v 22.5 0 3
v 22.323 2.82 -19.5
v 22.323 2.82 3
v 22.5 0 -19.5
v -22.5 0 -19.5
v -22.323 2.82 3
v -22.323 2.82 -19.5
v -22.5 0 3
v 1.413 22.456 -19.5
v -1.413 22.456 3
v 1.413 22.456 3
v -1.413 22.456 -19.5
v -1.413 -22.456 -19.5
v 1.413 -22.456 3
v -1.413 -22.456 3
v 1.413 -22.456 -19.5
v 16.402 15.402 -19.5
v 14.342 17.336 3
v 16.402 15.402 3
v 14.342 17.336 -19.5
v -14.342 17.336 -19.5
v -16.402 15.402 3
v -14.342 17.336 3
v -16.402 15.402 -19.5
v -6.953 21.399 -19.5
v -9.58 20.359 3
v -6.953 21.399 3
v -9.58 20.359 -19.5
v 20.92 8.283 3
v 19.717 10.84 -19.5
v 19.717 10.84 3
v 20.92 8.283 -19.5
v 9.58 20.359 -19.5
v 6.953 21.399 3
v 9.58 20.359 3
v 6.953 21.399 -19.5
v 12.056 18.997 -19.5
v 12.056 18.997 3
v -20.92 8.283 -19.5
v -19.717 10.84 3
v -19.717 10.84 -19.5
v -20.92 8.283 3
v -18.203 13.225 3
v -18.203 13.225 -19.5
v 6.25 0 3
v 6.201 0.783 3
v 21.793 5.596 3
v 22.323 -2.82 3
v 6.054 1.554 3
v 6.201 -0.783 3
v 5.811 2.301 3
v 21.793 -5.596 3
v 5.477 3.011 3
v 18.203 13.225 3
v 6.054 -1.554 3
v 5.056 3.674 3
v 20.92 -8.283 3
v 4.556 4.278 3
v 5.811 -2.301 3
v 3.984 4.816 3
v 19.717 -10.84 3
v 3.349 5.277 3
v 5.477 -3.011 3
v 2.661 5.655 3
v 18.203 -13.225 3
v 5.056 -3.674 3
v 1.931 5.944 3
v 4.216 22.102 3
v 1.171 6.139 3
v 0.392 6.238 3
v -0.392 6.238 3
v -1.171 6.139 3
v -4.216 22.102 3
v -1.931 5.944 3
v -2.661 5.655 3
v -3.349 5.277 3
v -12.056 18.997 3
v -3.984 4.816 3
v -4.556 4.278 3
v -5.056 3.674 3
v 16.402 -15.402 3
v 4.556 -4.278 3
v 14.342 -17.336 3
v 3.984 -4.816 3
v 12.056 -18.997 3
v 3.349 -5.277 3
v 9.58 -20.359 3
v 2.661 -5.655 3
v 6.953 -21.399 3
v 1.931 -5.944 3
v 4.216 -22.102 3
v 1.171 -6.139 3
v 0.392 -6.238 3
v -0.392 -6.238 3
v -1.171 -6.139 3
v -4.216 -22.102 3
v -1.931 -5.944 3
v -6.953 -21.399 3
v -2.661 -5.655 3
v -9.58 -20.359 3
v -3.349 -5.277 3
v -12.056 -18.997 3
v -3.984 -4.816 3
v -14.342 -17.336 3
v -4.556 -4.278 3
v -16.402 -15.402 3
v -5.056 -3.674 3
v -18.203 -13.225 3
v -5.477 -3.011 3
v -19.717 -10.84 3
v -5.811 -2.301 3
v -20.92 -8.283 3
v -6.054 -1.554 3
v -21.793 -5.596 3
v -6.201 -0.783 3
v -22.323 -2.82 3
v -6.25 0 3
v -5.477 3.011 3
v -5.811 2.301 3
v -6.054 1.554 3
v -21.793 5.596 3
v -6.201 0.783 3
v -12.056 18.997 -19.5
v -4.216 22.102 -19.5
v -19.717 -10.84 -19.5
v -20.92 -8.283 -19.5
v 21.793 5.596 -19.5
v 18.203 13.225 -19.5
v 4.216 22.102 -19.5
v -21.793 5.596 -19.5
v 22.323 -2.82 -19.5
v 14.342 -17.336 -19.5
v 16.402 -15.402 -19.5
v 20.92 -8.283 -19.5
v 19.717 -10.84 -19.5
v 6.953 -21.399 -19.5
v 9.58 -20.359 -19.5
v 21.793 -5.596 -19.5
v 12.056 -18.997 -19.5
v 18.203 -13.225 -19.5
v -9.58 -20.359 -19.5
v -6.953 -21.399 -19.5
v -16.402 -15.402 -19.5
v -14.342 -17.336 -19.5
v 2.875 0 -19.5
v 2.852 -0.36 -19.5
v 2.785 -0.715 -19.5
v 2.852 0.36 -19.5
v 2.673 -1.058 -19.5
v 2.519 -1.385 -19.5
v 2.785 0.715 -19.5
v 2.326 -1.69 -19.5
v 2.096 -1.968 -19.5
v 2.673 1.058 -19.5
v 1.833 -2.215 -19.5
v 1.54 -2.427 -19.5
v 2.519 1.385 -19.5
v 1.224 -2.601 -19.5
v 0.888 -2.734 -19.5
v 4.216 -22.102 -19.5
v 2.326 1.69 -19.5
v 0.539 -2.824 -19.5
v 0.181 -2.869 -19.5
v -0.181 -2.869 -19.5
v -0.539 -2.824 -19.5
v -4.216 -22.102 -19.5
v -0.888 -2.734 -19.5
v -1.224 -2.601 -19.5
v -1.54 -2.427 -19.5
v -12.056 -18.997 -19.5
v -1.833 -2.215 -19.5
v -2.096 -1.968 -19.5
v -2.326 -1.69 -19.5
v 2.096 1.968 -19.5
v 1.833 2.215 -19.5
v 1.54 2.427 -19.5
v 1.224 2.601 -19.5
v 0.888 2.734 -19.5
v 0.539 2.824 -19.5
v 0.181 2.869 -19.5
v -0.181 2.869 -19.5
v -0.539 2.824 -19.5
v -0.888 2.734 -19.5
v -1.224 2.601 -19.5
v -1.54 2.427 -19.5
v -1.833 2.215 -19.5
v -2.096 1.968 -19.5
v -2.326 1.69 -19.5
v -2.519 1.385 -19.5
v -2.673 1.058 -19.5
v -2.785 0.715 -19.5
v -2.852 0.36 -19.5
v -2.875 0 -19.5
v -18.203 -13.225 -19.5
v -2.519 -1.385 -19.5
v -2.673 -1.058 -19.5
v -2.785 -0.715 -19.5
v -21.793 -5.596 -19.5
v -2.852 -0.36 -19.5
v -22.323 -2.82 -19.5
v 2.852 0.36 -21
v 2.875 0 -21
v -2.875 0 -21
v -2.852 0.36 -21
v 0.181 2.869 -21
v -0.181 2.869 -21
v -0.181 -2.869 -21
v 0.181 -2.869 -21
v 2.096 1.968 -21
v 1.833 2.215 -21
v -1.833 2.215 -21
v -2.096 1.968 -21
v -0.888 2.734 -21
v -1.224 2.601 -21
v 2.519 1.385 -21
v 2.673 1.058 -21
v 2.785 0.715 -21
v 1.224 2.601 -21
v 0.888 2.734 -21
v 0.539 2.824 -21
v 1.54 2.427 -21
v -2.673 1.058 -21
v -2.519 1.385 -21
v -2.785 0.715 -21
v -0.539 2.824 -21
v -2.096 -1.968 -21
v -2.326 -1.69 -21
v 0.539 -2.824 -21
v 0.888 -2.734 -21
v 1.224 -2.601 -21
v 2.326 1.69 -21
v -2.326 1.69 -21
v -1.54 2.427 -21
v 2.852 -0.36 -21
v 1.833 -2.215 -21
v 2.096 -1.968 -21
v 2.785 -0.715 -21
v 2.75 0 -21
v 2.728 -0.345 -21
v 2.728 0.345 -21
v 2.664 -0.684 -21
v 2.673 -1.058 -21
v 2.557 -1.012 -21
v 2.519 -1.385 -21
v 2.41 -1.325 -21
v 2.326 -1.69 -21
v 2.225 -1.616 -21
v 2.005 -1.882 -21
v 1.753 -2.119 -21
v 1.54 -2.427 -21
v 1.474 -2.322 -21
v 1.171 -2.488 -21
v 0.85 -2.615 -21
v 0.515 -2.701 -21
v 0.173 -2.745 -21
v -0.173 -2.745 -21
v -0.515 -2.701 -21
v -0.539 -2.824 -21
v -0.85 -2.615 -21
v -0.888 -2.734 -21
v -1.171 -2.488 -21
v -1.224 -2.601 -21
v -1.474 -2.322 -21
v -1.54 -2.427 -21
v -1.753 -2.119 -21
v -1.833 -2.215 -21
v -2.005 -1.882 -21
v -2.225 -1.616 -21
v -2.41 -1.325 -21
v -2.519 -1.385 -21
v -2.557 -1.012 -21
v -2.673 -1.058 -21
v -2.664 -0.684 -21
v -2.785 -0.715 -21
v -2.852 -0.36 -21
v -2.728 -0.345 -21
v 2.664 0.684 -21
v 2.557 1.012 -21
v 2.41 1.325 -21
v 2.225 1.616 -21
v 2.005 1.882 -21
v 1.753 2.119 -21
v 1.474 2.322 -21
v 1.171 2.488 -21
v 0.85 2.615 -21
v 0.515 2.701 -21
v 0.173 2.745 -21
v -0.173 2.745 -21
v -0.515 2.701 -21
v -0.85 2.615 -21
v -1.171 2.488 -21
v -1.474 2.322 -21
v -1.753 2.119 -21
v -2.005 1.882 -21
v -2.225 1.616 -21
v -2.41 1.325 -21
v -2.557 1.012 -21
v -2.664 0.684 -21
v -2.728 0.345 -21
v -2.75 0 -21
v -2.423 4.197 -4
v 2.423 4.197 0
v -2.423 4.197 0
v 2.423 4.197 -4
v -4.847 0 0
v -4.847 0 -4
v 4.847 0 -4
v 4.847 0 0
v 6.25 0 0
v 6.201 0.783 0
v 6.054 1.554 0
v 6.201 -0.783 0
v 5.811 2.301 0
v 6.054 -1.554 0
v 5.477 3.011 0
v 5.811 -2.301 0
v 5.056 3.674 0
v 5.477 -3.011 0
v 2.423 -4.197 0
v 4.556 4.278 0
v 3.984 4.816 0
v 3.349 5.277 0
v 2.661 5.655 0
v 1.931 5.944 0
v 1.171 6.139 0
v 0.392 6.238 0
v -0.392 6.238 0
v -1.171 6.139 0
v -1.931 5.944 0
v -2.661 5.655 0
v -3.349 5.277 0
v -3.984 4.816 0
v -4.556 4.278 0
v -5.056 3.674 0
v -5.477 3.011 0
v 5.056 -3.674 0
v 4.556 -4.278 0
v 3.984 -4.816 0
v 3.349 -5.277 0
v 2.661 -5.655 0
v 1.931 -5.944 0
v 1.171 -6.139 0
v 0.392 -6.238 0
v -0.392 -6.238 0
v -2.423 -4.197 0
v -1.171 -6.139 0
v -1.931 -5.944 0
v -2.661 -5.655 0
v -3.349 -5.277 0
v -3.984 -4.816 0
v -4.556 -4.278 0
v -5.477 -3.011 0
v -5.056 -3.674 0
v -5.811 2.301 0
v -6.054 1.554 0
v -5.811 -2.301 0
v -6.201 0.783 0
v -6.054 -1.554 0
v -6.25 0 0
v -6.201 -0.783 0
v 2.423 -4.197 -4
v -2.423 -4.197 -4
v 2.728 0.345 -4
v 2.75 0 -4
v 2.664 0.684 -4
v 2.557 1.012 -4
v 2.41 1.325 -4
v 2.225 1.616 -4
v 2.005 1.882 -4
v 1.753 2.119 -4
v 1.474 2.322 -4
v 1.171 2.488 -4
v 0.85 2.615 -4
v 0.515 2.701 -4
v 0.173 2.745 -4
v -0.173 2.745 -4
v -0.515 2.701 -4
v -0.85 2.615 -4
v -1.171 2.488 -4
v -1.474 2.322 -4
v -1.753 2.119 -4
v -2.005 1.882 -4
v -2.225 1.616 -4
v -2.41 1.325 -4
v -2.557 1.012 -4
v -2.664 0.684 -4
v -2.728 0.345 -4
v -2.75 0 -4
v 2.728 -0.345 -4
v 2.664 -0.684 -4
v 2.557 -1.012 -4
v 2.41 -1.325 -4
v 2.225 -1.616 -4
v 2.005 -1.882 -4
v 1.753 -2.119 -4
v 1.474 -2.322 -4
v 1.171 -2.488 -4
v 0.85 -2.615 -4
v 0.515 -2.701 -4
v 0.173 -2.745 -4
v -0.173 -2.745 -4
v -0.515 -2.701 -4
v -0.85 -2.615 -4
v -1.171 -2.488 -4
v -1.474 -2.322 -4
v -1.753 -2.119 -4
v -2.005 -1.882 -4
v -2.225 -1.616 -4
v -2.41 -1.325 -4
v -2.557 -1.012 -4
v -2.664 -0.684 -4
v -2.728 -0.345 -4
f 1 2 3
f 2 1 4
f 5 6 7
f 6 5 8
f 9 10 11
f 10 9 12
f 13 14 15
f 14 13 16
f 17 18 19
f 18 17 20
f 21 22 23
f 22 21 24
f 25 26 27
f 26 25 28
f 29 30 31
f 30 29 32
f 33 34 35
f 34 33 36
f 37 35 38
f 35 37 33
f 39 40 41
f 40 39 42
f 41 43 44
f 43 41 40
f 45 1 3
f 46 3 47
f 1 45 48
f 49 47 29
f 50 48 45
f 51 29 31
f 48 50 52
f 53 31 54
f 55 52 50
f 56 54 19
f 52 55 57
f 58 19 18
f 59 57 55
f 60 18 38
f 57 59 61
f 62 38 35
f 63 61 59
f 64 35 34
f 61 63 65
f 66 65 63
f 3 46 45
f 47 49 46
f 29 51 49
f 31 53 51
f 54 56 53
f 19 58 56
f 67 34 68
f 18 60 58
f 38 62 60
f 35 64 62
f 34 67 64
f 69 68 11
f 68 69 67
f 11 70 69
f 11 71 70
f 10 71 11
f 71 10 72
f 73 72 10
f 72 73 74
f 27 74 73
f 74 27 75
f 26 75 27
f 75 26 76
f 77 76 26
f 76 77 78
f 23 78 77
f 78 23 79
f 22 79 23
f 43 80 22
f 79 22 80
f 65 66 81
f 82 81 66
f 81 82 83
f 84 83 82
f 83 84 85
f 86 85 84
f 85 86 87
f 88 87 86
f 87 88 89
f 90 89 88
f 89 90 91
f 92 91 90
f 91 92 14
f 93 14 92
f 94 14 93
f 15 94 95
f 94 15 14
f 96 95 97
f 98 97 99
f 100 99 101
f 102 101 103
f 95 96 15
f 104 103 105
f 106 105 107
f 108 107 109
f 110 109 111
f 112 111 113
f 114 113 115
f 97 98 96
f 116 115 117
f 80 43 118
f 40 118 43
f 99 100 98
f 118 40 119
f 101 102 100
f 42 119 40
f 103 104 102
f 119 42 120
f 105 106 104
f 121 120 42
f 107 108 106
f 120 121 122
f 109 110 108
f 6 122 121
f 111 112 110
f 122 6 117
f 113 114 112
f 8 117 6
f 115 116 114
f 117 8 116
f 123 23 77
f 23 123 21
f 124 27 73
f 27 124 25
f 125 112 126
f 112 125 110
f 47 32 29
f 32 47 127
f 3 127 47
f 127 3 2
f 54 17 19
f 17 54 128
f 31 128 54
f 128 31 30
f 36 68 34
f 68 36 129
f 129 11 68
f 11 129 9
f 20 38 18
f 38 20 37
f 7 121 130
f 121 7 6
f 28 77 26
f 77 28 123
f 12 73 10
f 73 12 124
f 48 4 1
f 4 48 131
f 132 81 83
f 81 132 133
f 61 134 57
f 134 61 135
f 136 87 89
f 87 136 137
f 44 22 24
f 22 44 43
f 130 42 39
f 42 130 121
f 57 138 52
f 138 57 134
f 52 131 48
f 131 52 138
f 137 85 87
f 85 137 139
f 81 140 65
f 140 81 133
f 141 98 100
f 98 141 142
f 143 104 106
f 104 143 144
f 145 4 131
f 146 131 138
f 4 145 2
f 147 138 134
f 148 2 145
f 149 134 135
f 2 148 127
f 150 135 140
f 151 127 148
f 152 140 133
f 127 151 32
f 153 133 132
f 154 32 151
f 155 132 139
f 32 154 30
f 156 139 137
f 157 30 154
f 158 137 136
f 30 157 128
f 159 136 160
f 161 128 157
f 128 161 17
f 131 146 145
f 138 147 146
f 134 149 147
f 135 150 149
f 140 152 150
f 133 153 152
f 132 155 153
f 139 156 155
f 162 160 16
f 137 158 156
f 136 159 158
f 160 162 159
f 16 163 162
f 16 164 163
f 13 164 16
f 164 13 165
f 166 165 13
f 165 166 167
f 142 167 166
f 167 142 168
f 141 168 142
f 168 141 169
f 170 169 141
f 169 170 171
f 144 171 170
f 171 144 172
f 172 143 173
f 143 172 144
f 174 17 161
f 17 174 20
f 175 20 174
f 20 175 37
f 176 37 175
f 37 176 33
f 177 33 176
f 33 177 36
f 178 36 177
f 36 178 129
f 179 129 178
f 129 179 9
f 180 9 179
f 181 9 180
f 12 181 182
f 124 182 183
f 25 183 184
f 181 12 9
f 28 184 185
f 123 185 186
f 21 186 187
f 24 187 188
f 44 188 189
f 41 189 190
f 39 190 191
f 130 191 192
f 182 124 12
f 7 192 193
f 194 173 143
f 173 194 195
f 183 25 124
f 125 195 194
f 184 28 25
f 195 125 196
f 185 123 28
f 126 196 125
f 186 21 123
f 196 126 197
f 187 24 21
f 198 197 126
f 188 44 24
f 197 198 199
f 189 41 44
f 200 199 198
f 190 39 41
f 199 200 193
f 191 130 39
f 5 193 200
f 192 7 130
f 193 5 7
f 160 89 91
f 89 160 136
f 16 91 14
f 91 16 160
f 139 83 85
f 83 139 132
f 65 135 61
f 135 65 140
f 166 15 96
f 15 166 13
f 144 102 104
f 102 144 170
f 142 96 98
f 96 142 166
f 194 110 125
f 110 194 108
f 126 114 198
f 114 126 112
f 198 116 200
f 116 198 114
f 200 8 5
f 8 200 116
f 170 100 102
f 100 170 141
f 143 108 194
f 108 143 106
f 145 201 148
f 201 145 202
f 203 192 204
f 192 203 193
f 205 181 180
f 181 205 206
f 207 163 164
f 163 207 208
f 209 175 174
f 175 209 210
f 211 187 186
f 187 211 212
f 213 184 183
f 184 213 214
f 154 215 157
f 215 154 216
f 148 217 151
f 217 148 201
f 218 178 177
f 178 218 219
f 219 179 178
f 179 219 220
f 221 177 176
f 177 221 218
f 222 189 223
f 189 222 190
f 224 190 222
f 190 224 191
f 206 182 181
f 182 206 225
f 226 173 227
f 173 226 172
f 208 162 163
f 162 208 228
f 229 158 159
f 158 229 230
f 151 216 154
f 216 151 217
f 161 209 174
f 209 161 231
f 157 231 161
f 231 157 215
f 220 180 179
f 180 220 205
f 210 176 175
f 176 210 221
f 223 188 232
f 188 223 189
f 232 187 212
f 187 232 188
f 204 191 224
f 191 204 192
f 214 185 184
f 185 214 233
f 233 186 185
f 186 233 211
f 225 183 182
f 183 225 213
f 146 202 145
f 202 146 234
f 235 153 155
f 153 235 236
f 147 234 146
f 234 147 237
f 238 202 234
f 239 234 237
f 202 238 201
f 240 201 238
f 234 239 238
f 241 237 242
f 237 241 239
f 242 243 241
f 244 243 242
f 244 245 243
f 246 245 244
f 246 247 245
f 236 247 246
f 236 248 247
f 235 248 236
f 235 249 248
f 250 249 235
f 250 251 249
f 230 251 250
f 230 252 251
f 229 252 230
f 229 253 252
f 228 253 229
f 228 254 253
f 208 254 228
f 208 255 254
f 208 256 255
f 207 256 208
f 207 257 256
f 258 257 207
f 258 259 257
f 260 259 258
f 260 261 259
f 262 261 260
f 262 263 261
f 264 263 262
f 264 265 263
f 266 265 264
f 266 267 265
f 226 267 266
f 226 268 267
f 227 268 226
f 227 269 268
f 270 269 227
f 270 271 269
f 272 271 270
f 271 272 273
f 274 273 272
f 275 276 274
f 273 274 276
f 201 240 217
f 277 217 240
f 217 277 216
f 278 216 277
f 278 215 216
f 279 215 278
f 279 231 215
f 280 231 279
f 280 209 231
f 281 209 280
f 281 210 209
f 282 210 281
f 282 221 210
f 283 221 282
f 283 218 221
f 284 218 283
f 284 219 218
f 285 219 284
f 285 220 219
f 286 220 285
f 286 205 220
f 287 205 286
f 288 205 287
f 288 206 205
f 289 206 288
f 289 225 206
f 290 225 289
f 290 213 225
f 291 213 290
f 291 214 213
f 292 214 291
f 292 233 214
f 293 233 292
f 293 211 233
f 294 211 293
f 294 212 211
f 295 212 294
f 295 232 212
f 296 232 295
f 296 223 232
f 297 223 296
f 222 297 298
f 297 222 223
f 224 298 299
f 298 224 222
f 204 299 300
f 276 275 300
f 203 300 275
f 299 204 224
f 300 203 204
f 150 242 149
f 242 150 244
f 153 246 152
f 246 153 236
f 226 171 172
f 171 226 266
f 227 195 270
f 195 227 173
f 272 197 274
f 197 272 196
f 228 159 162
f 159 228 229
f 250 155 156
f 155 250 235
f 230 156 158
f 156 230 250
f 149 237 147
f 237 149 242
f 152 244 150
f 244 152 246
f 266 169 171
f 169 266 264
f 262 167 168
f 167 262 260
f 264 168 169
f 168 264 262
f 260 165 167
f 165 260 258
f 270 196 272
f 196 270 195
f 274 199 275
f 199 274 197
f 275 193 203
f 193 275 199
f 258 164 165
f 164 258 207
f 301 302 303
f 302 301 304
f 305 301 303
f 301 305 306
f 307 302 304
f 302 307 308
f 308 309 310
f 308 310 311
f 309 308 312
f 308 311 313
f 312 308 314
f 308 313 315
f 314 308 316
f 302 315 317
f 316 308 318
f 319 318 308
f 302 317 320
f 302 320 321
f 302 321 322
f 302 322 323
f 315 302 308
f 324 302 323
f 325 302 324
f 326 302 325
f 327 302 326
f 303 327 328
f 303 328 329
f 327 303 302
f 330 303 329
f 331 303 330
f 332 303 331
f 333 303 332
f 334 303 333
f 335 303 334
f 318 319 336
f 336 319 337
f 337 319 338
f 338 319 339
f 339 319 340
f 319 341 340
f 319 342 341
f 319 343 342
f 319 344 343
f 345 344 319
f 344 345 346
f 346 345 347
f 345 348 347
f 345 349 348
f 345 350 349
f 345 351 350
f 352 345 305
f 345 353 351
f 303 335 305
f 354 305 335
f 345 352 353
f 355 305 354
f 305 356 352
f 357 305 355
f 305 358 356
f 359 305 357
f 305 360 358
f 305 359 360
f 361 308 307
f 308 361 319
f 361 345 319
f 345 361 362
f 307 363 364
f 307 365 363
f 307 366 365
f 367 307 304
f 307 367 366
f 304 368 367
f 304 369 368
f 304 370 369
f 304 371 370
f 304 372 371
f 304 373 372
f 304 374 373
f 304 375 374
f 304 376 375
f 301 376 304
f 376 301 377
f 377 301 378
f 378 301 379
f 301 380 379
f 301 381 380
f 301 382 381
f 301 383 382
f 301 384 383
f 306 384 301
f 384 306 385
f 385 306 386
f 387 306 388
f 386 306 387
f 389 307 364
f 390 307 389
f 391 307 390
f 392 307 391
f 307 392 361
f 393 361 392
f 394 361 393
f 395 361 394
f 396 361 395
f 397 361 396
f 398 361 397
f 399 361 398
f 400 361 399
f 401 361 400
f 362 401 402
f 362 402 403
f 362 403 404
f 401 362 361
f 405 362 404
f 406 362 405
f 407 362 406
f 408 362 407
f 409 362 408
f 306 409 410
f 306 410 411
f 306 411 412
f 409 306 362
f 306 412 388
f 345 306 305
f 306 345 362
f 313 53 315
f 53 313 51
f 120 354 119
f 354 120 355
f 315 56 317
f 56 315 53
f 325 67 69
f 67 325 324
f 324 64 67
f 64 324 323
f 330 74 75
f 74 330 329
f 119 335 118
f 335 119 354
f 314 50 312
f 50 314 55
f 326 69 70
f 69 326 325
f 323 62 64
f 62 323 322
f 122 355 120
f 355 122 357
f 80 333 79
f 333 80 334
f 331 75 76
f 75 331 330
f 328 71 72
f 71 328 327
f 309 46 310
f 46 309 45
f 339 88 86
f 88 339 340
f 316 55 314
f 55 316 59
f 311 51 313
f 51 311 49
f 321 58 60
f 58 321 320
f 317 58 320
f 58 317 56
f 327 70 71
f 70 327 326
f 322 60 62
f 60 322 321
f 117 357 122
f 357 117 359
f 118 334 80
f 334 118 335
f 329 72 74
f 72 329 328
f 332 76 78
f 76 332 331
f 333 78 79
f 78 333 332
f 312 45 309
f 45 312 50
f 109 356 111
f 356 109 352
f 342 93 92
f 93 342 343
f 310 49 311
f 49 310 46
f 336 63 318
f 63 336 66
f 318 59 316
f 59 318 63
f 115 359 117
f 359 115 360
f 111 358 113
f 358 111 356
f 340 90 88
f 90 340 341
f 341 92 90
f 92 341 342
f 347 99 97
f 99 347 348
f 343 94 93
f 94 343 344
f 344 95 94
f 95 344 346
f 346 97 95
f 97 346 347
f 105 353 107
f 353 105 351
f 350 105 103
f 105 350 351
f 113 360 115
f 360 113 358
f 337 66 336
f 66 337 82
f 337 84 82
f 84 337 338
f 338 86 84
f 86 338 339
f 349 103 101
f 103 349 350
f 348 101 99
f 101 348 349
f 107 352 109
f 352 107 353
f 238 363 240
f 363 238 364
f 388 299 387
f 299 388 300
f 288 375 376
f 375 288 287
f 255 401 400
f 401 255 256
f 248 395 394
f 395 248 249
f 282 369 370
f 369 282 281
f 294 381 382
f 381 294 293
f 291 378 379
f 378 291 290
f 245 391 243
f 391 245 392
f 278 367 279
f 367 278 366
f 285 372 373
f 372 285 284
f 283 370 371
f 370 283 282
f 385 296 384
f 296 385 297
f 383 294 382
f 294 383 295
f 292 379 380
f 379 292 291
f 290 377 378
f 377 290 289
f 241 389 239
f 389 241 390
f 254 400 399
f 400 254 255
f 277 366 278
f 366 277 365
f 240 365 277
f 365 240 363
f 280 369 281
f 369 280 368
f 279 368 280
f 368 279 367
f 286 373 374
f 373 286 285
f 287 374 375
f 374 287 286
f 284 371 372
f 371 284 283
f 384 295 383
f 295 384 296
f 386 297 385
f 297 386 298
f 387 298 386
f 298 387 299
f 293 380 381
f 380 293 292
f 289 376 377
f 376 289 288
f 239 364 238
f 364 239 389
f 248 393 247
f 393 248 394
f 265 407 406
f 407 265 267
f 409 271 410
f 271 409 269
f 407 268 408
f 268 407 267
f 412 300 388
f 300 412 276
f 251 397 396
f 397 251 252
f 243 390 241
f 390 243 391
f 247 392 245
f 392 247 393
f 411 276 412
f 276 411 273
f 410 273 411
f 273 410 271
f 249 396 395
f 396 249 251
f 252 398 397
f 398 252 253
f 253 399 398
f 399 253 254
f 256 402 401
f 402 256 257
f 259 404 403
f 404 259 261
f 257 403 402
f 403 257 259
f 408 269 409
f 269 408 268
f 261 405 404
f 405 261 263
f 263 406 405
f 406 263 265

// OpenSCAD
$fn = 50;

difference() {
	union() {
		translate(v = [0, 0, -19.5]) {
			cylinder(h = 22.5, r = 22.5);
		}
		#translate(v = [0, 0, -21.0]) {
			cylinder(h = 21, r = 2.875);
		}
	}
	union() {
		translate(v = [0, 0, 0]) {
			rotate(a = [0, 0, 0]) {
				difference() {
					union() {
						translate(v = [0, 0, -4]) {
							linear_extrude(height = 4) {
								polygon(points = [[4.8468, 0.0], [2.4234000000000004, 4.197451927062417], [-2.423399999999999, 4.197451927062417], [-4.8468, 5.935618106107392e-16], [-2.423400000000002, -4.197451927062416], [2.423399999999997, -4.197451927062419]]);
							}
						}
					}
					union();
				}
			}
		}
		#cylinder(h = 3, r = 6.25);
		#translate(v = [0, 0, -100.0]) {
			cylinder(h = 200, r = 2.75);
		}
	}
}
